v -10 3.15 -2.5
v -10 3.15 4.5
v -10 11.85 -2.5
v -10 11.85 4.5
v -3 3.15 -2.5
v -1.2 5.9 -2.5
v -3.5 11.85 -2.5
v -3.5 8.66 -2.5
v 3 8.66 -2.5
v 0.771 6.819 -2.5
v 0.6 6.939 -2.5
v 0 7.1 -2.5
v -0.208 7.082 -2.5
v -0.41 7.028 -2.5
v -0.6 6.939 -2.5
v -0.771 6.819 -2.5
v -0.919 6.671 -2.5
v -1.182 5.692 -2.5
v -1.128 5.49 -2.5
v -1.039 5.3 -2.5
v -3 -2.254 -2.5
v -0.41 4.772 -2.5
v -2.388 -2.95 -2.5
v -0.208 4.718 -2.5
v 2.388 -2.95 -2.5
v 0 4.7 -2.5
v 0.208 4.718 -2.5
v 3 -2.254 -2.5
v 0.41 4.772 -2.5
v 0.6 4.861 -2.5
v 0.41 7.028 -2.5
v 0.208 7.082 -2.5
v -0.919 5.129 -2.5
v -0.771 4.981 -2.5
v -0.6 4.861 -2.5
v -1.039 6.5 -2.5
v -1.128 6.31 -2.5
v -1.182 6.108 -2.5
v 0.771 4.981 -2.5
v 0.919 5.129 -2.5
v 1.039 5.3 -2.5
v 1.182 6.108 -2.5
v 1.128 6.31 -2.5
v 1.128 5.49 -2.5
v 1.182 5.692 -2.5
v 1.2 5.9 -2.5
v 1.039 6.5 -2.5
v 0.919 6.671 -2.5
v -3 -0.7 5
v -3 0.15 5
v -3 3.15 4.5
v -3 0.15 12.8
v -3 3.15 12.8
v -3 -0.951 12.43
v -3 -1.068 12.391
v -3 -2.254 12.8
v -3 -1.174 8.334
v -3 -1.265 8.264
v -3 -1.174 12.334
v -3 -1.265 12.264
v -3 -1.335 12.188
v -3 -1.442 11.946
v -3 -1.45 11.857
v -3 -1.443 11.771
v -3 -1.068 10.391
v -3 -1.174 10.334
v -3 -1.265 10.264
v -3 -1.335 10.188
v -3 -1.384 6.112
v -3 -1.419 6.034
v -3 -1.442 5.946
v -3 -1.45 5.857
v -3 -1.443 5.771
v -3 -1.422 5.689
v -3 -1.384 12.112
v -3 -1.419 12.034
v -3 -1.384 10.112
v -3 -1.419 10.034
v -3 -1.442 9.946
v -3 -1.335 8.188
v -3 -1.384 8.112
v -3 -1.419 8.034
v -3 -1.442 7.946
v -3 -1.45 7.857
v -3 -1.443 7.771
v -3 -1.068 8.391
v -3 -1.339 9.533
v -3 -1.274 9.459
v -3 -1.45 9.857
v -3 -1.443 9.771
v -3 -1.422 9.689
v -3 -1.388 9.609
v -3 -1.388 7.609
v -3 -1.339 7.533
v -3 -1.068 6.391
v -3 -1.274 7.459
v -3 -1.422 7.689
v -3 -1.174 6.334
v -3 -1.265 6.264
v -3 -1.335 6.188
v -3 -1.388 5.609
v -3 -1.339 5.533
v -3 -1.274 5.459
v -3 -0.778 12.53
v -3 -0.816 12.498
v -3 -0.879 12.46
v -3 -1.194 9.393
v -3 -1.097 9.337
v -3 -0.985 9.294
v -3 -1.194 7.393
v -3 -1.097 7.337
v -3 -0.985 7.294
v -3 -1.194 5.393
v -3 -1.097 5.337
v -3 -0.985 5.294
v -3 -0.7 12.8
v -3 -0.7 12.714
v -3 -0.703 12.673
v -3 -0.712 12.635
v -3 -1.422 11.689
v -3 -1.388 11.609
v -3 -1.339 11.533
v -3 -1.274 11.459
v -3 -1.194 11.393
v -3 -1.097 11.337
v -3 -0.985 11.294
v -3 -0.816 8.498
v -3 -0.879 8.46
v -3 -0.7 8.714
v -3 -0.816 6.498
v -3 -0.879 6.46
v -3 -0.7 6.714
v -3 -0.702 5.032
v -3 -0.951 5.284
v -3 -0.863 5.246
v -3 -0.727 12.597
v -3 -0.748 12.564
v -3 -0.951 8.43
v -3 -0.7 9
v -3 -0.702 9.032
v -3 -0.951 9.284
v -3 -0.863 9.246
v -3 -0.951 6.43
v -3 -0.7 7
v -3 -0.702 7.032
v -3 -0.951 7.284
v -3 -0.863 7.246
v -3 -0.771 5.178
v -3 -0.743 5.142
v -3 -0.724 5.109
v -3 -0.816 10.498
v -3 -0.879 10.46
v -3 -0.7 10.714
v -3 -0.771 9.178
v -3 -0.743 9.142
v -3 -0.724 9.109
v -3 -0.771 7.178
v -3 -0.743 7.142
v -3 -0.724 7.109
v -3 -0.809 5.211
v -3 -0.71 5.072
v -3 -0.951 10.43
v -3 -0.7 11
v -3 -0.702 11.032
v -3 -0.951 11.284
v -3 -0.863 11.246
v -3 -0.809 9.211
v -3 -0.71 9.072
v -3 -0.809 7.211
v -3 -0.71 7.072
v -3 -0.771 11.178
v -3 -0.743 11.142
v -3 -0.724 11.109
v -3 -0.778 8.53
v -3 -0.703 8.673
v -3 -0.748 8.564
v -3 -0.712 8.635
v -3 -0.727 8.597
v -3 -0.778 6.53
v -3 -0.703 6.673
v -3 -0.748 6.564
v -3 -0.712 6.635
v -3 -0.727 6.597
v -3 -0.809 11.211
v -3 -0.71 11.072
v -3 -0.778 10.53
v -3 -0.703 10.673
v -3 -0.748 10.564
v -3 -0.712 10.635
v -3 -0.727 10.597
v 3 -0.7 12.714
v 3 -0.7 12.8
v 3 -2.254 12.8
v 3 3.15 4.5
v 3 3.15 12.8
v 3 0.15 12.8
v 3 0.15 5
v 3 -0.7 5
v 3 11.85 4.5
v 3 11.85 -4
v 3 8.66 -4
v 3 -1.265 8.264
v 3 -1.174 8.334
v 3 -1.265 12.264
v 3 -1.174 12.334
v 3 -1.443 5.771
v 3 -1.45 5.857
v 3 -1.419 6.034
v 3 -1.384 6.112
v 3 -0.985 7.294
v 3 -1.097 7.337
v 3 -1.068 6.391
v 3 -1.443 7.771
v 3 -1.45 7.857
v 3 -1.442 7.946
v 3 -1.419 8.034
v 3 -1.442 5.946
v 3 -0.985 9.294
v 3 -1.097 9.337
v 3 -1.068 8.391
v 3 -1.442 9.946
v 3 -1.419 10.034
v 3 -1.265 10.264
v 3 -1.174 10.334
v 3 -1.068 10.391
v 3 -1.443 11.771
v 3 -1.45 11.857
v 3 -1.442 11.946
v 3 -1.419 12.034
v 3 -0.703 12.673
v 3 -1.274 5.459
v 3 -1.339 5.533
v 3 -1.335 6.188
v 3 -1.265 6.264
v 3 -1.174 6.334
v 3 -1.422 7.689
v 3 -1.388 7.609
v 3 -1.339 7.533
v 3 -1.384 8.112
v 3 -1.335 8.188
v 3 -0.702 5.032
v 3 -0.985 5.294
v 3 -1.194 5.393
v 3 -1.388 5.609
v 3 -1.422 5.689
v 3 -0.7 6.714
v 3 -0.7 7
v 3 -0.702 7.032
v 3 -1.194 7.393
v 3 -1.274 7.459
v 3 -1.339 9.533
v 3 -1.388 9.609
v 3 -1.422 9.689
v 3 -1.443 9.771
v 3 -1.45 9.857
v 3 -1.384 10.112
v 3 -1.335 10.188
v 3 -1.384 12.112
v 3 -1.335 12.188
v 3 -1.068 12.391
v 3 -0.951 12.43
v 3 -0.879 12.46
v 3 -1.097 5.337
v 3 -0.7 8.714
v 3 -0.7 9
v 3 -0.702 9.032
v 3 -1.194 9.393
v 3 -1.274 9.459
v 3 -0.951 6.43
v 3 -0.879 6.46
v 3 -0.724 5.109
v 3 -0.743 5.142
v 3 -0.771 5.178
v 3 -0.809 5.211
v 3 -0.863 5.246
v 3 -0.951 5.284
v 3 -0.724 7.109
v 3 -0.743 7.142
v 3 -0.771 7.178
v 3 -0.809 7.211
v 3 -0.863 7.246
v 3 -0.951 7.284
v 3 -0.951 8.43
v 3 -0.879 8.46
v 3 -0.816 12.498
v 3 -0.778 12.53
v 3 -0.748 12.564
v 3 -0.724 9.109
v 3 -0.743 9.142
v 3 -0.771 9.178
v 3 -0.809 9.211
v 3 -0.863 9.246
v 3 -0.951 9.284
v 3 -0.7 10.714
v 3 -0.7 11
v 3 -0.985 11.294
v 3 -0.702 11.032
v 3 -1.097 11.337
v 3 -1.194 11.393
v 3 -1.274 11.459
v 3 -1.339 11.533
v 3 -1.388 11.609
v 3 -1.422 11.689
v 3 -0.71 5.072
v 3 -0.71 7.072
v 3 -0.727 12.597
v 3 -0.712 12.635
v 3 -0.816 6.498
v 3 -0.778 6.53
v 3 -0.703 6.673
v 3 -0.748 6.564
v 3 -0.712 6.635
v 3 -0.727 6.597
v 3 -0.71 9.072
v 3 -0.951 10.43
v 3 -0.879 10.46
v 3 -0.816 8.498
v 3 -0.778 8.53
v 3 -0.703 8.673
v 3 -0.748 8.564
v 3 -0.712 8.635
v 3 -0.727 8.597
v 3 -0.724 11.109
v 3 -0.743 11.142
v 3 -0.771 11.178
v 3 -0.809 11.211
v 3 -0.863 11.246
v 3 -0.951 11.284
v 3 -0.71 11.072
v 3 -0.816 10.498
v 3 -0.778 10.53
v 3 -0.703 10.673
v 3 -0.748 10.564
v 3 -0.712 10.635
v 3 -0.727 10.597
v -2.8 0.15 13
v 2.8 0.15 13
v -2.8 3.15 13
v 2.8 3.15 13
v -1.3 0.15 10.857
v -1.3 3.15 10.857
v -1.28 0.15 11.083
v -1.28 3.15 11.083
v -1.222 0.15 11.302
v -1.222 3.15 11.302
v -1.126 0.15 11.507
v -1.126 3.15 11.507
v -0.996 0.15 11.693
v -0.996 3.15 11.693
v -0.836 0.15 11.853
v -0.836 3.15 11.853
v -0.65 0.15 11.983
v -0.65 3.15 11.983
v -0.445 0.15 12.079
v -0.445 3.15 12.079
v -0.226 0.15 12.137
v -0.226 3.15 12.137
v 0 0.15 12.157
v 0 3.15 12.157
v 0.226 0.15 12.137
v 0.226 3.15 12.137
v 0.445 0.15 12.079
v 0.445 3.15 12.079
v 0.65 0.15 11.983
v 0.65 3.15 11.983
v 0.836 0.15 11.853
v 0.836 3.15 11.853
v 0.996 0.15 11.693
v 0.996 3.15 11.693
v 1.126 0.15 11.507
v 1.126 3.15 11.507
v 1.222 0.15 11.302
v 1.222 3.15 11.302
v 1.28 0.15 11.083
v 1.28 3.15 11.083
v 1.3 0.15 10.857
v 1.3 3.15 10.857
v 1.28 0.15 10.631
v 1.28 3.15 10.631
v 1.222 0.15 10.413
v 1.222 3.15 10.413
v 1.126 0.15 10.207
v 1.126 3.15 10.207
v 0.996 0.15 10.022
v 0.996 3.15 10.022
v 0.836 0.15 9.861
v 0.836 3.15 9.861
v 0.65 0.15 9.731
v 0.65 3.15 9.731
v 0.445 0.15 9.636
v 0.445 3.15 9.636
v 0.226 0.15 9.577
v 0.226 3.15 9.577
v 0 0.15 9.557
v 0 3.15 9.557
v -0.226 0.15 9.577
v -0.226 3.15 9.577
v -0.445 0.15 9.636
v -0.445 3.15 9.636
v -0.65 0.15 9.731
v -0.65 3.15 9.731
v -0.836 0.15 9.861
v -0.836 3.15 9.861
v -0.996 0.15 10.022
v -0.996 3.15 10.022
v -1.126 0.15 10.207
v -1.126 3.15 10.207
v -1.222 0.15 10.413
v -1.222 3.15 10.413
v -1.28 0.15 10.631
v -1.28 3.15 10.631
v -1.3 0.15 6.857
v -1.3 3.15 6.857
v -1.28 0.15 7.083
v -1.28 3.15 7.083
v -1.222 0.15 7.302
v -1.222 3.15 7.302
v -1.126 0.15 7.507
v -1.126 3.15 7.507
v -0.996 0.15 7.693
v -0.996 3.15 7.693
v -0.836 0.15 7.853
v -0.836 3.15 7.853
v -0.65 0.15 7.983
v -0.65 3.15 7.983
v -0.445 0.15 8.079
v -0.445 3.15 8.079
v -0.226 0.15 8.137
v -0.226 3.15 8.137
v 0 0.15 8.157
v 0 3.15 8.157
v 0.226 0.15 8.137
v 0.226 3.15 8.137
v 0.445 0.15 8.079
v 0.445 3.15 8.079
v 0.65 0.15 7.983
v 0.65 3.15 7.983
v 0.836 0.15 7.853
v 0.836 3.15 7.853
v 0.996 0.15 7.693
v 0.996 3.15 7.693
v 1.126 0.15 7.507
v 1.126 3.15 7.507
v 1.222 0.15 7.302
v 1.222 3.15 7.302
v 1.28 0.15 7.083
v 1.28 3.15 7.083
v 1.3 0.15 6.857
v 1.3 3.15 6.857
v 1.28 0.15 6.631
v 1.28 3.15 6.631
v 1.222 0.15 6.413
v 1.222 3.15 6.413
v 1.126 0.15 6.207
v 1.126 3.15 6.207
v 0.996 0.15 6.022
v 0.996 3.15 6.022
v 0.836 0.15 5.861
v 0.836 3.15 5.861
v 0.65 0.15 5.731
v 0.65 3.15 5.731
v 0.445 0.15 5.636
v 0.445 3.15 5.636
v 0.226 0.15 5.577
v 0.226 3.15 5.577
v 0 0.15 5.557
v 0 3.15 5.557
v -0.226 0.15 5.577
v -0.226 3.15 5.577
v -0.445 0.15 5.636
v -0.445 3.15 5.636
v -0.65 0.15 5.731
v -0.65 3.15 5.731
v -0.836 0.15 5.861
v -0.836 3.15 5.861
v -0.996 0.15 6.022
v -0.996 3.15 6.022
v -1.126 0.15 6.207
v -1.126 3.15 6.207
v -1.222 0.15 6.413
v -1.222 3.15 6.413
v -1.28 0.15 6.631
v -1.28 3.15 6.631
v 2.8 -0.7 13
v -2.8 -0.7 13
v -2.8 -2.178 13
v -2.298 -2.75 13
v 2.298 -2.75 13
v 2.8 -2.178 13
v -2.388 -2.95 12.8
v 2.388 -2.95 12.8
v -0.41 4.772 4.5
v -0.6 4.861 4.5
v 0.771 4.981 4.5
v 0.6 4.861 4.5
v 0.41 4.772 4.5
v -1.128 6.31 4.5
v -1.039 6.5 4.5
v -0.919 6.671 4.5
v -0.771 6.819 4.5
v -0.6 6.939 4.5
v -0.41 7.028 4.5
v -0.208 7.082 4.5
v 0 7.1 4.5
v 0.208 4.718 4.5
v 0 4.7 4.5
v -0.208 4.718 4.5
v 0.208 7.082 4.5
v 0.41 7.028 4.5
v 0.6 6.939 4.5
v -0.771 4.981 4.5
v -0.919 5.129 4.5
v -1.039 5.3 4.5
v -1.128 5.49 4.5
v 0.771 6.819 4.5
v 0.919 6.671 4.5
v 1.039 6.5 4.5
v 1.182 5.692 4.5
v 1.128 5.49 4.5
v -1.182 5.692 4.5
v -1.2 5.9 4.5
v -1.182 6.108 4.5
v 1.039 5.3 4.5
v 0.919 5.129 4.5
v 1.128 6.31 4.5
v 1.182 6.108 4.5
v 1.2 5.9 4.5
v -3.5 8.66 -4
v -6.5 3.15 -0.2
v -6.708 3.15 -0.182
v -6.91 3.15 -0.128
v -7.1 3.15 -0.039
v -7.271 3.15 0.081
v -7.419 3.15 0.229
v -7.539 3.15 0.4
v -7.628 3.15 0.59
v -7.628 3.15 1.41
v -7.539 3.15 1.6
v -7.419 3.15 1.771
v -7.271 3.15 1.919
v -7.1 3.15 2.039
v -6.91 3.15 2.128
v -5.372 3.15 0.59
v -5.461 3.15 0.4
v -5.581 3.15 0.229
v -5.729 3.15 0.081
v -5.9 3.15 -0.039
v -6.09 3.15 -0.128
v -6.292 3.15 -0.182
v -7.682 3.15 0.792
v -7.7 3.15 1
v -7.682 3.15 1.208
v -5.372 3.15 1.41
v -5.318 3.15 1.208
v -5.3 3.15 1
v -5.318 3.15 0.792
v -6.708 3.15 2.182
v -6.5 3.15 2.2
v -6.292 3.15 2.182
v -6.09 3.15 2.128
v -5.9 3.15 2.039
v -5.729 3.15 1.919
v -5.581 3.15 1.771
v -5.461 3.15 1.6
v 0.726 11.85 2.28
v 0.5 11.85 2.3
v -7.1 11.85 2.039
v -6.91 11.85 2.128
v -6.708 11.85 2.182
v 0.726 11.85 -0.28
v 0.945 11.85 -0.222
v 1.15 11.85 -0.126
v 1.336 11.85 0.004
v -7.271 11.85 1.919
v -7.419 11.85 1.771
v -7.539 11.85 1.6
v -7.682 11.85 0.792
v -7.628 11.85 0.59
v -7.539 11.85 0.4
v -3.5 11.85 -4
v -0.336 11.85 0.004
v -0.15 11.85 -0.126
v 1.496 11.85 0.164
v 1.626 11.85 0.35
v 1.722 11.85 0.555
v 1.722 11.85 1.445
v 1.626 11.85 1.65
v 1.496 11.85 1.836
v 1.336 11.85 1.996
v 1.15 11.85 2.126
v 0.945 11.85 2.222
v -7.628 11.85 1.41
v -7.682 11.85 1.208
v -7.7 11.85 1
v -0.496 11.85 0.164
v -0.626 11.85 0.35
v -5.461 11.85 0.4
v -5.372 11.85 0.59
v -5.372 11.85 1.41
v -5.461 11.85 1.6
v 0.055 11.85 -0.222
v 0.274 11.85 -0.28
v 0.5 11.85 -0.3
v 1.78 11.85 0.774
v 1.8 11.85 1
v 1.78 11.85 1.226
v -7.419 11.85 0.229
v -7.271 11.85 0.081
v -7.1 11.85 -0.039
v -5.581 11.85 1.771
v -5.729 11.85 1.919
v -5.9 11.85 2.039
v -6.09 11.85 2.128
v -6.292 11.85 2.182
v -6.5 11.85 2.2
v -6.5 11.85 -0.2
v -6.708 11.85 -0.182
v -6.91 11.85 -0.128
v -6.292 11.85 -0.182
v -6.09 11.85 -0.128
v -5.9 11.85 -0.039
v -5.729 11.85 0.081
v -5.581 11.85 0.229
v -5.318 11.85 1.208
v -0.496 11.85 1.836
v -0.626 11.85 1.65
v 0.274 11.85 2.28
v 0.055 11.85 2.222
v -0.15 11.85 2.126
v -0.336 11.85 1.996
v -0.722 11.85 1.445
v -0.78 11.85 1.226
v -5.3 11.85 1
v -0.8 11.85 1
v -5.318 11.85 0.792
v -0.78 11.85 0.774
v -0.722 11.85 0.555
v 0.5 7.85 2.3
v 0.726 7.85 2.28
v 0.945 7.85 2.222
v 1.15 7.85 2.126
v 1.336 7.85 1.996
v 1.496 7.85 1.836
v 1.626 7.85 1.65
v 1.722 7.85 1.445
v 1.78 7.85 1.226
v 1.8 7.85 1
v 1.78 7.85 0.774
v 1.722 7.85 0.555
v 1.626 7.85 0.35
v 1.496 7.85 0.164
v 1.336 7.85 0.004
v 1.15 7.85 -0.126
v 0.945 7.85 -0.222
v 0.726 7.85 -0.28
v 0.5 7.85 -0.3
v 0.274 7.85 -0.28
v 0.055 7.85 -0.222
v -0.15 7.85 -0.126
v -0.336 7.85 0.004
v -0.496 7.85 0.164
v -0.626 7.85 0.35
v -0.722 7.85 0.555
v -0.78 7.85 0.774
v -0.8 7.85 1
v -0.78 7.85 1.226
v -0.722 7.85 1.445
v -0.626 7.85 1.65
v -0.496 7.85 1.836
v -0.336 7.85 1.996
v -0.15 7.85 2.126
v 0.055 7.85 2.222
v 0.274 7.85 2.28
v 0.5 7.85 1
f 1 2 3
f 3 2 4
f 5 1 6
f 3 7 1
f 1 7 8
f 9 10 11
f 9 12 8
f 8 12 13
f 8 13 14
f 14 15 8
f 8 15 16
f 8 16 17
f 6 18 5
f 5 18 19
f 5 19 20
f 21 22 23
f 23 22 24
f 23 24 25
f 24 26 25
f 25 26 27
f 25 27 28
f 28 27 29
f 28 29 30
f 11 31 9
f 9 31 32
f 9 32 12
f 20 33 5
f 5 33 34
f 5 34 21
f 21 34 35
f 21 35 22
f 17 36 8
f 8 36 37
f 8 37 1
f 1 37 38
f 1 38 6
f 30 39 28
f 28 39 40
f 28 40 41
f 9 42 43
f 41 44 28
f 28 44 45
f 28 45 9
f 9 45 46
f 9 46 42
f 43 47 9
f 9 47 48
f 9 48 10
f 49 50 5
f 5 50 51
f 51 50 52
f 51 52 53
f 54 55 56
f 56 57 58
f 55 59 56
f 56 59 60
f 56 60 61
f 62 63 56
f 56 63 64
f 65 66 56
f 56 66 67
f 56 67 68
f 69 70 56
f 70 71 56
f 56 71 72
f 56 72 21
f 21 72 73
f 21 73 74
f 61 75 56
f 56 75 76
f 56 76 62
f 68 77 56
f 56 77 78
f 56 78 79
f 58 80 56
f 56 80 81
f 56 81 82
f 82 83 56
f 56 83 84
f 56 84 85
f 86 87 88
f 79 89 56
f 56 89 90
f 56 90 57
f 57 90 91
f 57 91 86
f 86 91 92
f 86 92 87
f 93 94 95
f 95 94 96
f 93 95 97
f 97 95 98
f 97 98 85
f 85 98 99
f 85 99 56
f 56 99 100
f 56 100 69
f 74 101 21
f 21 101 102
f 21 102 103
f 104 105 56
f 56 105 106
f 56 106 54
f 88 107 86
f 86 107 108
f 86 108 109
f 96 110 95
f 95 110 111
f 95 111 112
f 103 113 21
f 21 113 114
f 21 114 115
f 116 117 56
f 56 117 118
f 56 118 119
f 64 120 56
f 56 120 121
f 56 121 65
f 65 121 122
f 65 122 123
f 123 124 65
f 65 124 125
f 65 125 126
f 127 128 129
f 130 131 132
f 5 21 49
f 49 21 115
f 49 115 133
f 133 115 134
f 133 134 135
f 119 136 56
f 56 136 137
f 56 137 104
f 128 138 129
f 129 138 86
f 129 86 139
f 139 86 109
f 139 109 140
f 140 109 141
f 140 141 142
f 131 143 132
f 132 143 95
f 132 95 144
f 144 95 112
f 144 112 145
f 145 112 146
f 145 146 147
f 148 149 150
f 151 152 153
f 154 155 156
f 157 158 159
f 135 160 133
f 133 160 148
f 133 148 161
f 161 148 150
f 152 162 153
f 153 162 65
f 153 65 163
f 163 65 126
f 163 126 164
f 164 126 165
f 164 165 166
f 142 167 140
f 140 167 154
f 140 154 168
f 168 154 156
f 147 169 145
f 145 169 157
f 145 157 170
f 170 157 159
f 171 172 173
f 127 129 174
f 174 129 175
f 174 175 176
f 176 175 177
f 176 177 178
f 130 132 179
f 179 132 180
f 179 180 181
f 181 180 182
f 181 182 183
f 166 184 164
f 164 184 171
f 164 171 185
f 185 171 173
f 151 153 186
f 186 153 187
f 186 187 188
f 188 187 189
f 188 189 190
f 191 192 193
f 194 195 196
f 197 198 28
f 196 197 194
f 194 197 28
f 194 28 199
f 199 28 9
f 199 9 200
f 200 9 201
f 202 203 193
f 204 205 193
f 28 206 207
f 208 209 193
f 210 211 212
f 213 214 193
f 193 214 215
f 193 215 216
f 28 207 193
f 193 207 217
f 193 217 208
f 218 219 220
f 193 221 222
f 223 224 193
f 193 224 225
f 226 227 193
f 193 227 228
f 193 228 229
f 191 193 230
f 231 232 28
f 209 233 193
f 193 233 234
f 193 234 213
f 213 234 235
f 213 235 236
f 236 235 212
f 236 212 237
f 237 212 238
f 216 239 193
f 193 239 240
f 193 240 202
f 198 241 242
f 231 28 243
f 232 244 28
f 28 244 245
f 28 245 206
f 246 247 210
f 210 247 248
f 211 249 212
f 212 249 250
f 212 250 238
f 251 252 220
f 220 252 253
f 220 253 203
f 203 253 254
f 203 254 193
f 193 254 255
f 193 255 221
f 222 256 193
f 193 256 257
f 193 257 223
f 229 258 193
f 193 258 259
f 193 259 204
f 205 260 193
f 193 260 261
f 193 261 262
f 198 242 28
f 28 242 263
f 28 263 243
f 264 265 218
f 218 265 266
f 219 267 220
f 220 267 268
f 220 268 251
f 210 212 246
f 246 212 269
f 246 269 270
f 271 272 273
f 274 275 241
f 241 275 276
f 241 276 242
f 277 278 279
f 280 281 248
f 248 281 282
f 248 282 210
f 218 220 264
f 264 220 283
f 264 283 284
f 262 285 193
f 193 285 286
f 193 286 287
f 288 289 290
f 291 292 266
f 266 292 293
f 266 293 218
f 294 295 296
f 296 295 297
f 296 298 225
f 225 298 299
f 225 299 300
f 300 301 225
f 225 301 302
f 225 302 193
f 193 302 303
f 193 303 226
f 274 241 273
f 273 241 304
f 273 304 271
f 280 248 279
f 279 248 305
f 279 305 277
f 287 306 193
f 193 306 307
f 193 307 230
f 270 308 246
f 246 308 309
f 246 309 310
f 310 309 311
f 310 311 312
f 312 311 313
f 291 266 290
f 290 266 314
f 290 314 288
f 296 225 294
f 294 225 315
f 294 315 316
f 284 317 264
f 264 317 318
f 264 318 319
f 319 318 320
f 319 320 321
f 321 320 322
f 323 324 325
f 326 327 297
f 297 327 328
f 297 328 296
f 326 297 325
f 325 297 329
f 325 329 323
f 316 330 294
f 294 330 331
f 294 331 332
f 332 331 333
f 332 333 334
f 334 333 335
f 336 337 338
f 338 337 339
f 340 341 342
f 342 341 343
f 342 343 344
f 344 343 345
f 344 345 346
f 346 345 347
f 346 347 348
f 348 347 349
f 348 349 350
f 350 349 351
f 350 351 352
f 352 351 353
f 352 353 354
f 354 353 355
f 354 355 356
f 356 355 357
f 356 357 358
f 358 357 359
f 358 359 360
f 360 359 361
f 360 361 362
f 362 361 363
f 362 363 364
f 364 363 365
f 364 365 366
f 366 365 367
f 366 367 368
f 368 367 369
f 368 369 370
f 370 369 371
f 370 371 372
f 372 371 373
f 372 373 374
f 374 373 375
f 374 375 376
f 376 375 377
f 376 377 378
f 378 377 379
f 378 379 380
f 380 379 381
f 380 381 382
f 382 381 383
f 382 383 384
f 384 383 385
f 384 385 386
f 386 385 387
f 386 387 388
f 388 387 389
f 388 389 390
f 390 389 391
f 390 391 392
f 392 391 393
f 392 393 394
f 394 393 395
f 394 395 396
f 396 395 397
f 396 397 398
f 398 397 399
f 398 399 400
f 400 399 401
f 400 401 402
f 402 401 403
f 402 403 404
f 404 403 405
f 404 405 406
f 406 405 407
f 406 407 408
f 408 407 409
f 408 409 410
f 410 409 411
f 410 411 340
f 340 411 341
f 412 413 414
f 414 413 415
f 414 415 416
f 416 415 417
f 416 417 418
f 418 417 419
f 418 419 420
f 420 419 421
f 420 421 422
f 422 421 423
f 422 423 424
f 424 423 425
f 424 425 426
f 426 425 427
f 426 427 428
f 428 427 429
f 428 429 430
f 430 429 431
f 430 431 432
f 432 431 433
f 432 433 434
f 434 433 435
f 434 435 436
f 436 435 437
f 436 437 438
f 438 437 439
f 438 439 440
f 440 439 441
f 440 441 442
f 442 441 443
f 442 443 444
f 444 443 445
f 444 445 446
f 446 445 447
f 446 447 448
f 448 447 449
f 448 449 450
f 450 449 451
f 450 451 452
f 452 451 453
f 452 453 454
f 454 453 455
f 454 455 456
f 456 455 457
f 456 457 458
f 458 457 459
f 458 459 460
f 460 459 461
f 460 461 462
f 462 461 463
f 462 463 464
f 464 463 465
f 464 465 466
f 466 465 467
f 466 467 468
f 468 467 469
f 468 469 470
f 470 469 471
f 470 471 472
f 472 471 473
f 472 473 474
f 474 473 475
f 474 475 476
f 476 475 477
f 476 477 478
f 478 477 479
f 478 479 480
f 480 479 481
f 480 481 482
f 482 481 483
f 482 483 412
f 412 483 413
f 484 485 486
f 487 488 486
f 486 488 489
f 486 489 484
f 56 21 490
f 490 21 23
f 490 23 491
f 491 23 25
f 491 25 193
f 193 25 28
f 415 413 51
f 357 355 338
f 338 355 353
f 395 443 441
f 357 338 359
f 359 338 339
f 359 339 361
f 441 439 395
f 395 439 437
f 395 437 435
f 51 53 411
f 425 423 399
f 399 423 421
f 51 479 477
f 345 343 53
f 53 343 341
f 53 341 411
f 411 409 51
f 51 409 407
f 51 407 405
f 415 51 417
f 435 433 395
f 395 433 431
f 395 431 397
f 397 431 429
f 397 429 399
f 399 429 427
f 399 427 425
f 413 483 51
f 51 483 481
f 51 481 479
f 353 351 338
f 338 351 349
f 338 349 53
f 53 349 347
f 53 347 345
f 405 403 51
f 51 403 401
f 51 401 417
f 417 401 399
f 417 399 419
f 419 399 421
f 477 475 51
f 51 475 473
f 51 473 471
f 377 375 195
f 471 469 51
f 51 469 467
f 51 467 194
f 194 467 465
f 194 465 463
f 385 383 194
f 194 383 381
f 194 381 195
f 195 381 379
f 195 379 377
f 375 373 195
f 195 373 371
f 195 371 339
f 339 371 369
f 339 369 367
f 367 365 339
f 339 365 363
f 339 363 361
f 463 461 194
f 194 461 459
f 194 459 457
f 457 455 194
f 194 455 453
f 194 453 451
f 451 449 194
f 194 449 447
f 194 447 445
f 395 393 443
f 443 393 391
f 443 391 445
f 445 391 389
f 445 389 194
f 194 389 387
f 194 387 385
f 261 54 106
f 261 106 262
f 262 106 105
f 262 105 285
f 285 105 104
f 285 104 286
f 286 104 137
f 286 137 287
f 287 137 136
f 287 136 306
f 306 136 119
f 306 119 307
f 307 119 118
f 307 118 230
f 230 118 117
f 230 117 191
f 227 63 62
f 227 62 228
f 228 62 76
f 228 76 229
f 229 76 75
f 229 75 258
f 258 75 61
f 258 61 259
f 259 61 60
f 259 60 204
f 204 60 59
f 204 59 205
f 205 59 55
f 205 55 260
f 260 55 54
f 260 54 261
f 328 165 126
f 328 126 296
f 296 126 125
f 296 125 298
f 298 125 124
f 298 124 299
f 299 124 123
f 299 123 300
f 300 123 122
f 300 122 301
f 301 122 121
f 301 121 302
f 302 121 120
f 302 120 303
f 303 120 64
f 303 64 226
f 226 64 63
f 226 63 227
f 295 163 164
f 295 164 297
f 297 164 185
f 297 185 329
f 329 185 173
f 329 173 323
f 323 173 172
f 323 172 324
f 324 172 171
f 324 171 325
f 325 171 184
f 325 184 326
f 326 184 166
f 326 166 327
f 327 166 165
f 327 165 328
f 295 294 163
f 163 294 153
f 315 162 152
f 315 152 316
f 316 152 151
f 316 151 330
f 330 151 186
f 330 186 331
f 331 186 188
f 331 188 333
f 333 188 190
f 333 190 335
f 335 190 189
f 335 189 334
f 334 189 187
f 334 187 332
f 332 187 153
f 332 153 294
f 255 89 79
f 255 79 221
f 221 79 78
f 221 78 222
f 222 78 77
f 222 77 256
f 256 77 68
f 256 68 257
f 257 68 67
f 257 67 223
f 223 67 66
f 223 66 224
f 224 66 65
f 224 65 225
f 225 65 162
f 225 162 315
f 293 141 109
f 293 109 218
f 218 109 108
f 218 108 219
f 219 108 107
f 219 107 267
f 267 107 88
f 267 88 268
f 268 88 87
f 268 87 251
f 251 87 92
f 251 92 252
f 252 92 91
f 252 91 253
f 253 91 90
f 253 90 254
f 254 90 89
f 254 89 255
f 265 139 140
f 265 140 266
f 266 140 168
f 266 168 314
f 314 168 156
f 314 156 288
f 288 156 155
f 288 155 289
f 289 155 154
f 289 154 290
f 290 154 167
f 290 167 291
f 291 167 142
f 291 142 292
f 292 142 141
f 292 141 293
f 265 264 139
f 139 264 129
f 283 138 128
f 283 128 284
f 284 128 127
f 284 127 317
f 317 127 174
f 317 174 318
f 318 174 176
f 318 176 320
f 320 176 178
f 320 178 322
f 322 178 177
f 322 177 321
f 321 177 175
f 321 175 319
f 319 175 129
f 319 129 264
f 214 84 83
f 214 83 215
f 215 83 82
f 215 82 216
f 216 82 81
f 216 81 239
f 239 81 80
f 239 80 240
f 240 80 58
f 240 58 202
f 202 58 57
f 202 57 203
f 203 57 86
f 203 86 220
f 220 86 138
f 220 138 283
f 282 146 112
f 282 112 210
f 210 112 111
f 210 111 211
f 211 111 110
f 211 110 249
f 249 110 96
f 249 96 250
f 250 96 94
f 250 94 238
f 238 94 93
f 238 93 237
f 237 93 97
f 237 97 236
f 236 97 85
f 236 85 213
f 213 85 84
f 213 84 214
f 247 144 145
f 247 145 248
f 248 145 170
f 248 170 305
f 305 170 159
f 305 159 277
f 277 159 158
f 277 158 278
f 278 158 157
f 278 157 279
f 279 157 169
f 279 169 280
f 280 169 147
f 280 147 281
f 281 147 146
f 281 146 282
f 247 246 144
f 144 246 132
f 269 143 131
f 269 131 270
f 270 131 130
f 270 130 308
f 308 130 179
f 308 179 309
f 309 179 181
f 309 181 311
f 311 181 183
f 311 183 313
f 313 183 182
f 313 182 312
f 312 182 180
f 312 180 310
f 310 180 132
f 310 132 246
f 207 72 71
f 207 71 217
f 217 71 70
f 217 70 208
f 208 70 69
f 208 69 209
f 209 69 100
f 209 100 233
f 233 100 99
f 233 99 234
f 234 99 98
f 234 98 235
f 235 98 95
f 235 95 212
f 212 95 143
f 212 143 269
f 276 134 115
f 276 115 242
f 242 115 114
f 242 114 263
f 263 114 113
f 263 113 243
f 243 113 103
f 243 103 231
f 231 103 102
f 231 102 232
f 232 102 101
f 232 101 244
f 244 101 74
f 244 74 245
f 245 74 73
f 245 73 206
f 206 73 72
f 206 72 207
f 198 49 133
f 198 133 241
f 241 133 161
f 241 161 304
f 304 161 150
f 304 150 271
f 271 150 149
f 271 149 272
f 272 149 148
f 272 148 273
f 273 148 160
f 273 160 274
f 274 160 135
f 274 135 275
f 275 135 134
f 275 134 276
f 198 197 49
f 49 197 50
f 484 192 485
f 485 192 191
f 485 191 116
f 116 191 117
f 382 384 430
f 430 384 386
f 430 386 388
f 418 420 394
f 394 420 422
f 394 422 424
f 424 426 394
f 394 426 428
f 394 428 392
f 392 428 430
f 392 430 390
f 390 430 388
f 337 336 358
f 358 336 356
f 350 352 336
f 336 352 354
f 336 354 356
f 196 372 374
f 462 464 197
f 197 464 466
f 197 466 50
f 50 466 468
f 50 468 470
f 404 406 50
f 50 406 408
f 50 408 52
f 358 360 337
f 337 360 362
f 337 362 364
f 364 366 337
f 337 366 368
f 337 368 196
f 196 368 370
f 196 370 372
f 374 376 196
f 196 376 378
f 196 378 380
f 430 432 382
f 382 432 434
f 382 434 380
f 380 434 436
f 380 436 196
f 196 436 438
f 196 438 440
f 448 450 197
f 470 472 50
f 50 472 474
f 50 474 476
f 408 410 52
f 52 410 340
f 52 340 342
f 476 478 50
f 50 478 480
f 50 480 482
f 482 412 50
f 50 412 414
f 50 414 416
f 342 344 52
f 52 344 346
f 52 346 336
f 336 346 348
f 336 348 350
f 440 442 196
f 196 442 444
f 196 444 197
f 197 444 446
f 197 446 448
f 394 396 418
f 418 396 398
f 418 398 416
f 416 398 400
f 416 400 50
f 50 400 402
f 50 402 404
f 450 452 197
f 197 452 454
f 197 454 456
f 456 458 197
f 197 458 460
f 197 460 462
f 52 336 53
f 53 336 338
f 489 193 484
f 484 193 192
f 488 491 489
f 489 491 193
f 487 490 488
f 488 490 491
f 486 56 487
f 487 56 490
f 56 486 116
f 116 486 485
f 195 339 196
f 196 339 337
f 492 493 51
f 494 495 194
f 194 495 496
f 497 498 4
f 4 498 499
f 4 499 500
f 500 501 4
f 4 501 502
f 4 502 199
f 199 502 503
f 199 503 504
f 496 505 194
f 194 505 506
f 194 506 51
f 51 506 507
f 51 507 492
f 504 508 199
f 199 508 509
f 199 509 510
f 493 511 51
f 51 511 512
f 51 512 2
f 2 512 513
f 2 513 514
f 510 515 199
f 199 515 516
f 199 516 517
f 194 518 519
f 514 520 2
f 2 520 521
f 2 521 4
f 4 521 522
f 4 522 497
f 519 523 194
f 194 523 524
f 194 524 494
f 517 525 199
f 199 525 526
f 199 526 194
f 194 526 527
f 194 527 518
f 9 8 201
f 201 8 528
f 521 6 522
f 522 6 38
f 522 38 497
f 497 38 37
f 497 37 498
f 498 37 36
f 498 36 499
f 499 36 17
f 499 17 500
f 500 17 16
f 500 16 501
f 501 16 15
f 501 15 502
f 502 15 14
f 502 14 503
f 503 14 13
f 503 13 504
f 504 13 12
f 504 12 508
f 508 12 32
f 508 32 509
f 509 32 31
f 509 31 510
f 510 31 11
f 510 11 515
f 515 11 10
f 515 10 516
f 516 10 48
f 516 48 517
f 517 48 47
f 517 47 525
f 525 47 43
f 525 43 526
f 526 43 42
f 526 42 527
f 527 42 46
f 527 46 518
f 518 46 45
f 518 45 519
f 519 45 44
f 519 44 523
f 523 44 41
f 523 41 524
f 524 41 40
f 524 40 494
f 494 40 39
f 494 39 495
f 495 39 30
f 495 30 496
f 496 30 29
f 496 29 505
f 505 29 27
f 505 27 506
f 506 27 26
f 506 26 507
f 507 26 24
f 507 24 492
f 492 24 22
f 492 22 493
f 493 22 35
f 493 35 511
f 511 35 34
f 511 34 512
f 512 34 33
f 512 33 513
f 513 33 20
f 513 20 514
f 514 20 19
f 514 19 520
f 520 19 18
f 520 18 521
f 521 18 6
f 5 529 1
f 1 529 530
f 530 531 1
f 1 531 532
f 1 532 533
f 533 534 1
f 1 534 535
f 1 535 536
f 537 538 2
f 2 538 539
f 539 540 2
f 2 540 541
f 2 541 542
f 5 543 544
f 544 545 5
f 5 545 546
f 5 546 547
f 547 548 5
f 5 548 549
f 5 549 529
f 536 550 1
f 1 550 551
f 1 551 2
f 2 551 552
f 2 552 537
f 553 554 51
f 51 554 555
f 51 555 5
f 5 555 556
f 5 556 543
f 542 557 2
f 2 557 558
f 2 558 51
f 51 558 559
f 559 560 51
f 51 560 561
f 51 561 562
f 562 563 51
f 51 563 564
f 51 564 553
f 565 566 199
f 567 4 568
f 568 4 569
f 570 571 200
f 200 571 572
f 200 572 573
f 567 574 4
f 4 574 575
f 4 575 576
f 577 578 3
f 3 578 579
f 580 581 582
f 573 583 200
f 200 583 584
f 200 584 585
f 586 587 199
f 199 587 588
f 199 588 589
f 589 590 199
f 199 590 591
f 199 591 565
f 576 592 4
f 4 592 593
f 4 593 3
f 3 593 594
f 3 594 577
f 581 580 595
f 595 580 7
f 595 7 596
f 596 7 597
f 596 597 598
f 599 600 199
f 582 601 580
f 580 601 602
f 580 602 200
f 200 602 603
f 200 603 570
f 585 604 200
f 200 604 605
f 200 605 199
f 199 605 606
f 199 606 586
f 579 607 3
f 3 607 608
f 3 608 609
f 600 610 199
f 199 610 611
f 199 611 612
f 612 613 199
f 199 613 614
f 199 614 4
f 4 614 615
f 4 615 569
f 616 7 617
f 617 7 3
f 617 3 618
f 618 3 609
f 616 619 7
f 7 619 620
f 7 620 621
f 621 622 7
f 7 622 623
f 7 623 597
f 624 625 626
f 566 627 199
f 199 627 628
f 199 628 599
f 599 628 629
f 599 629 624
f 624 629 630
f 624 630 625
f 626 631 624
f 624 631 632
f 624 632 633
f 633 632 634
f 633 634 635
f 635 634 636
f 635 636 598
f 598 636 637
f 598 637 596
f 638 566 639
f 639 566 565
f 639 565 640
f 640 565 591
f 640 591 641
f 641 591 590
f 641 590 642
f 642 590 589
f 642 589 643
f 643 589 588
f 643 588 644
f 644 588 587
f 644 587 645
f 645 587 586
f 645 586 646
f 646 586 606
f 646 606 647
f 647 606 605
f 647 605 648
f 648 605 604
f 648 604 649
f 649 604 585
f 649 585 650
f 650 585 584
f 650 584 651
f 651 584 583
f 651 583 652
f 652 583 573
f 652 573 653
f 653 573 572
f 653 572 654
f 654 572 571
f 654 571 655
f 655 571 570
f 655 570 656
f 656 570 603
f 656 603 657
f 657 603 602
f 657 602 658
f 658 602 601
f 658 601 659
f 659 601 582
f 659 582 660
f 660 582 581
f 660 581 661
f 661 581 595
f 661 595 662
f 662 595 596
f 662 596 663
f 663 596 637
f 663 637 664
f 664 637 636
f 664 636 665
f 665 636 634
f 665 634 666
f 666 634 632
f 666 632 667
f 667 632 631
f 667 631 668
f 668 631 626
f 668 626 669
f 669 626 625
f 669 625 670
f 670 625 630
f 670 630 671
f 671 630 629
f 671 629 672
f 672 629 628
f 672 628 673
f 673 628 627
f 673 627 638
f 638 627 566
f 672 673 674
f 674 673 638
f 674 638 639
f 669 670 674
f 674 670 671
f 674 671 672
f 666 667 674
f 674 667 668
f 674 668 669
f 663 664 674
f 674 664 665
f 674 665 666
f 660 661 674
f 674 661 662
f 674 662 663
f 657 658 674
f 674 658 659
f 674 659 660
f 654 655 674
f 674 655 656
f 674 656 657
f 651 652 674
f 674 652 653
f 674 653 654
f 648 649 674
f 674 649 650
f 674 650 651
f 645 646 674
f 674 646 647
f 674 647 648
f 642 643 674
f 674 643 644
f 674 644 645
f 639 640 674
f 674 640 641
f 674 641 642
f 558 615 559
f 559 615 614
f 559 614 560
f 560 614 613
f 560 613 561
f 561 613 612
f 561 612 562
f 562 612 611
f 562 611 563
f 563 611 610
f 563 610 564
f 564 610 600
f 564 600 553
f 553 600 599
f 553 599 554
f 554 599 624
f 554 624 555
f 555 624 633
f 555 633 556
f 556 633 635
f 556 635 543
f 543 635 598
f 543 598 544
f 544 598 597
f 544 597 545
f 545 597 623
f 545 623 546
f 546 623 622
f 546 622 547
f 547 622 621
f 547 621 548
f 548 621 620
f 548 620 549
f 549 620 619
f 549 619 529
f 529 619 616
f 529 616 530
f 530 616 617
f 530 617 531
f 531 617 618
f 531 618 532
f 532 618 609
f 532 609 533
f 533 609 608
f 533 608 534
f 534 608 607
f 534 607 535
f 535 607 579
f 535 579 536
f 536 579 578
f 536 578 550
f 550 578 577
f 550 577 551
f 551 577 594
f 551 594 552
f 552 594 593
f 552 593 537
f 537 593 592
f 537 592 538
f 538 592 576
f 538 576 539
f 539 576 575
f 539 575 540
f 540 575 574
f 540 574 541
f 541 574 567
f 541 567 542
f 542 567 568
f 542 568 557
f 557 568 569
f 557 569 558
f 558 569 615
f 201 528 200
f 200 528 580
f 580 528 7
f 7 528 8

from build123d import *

# Parameters (mm, degrees)
BOSS_EXTRUDE1_DEPTH     = 13
SKETCH6_W               = 6
SKETCH6_H               = 5
BOSS_EXTRUDE4_DEPTH     = 5.6
SKETCH16_W              = 6
SKETCH16_H              = 8
BOSS_EXTRUDE5_DEPTH     = 0.1
CUT_EXTRUDE6_DEPTH      = 4
CUT_EXTRUDE6_DEPTH_BACK = 3.6
SKETCH15_R              = 1.3
CUT_EXTRUDE7_DEPTH      = 8.7202
CUT_EXTRUDE8_START      = -0.2202
SKETCH19_W              = 6
SKETCH19_H              = 8
SKETCH19_R              = 1.3
CUT_EXTRUDE8_DEPTH      = 0.2202
SKETCH12_R              = 1.2
CUT_EXTRUDE5_DEPTH      = 6
CHAMFER1_SIZE           = 0.2
SKETCH21_R              = 1.2
BOSS_EXTRUDE6_DEPTH     = 2.5
SKETCH24_W              = 6
SKETCH24_H              = 5.5
CUT_EXTRUDE10_DEPTH     = 8.5
SKETCH25_W              = 6
SKETCH25_H              = 7
BOSS_EXTRUDE8_DEPTH     = 12.9
SKETCH26_W              = 6
SKETCH26_H              = 7.39
BOSS_EXTRUDE9_DEPTH     = 3
SKETCH30_R              = 1.2
CUT_EXTRUDE13_DEPTH     = 8
SKETCH31_W              = 7
SKETCH31_H              = 9
BOSS_EXTRUDE11_DEPTH    = 1
SKETCH32_W              = 7
SKETCH32_H              = 9
BOSS_EXTRUDE12_DEPTH    = 1
BOSS_EXTRUDE13_DEPTH    = 1
BOSS_EXTRUDE14_DEPTH    = 1
SKETCH35_W              = 10
SKETCH35_H              = 4.2
CUT_EXTRUDE14_DEPTH     = 10
BOSS_EXTRUDE15_DEPTH    = 6
SKETCH38_R              = 1.3
CUT_EXTRUDE15_DEPTH     = 4
SKETCH39_R              = 1.2
CUT_EXTRUDE16_DEPTH     = 10
SKETCH40_W              = 14
SKETCH40_H              = 1.5
CUT_EXTRUDE17_DEPTH     = 10
SKETCH41_W              = 6.5
SKETCH41_H              = 3.19
CUT_EXTRUDE18_DEPTH     = 1.5
CROQUIS3_W              = 8.5
CROQUIS3_H              = 8.726674232
CORTAR_EXTRUIR3_DEPTH   = 1


with BuildPart() as part:
    # Sketch1 → Boss-Extrude1 (new body)
    with BuildSketch(Plane.XY):
        Polygon((3, 3.05), (3, -2.253801214), (2.388188946, -2.95), (-2.388188946, -2.95), (-3, -2.253801214), (-3, 3.05), align=None)
    extrude(amount=BOSS_EXTRUDE1_DEPTH)

    # Sketch6 → Boss-Extrude4 (add)
    with BuildSketch(Plane(origin=(0, 3.05, 0), x_dir=(1, 0, 0), z_dir=(0, 1, 0))):
        with Locations((0, -2.5)):
            Rectangle(SKETCH6_W, SKETCH6_H)
    extrude(amount=BOSS_EXTRUDE4_DEPTH)

    # Sketch16 → Boss-Extrude5 (add)
    with BuildSketch(Plane(origin=(0, 3.05, 0), x_dir=(1, 0, 0), z_dir=(0, 1, 0))):
        with Locations((0, -9)):
            Rectangle(SKETCH16_W, SKETCH16_H)
    extrude(amount=BOSS_EXTRUDE5_DEPTH)

    # Sketch18 → Cut-Extrude6 (cut, two sides: drawn at the far end of the back side and taken through both)
    with BuildSketch(Plane(origin=(0, 0, 0), x_dir=(0, 0, -1), z_dir=(1, 0, 0)).offset(-CUT_EXTRUDE6_DEPTH_BACK)):
        with BuildLine():
            Line((-8.8572, -0.0702), (-12.8572, -0.0702))
            Line((-12.8572, -0.0702), (-13, -0.0702))
            Line((-13, -0.0702), (-13, -0.7))
            Line((-13, -0.7), (-12.8572, -0.7))
            Line((-12.8572, -0.7), (-12.7144, -0.7))
            add(Edge.make_bspline(
                [(-12.7144, -0.7), (-12.5198, -0.7), (-12.43, -0.9509)],
                knots=[0.103448276, 0.103448276, 0.103448276, 0.137931034, 0.137931034, 0.137931034], degree=2))
            add(Edge.make_bspline(
                [(-12.43, -0.9509), (-12.3594, -1.2388), (-12.13, -1.45), (-11.8572, -1.45)],
                knots=[0.137931034, 0.137931034, 0.137931034, 0.137931034, 0.172413793, 0.172413793, 0.172413793, 0.172413793], degree=3))
            add(Edge.make_bspline(
                [(-11.8572, -1.45), (-11.5844, -1.45), (-11.355, -1.2388), (-11.2844, -0.9509)],
                knots=[0.172413793, 0.172413793, 0.172413793, 0.172413793, 0.206896552, 0.206896552, 0.206896552, 0.206896552], degree=3))
            add(Edge.make_bspline(
                [(-11.2844, -0.9509), (-11.1946, -0.7), (-11, -0.7)],
                knots=[0.206896552, 0.206896552, 0.206896552, 0.24137931, 0.24137931, 0.24137931], degree=2))
            Line((-11, -0.7), (-10.8572, -0.7))
            Line((-10.8572, -0.7), (-10.7144, -0.7))
            add(Edge.make_bspline(
                [(-10.7144, -0.7), (-10.5198, -0.7), (-10.43, -0.9509)],
                knots=[0.310344828, 0.310344828, 0.310344828, 0.344827586, 0.344827586, 0.344827586], degree=2))
            add(Edge.make_bspline(
                [(-10.43, -0.9509), (-10.3594, -1.2388), (-10.13, -1.45), (-9.8572, -1.45)],
                knots=[0.344827586, 0.344827586, 0.344827586, 0.344827586, 0.379310345, 0.379310345, 0.379310345, 0.379310345], degree=3))
            add(Edge.make_bspline(
                [(-9.8572, -1.45), (-9.5844, -1.45), (-9.355, -1.2388), (-9.2844, -0.9509)],
                knots=[0.379310345, 0.379310345, 0.379310345, 0.379310345, 0.413793103, 0.413793103, 0.413793103, 0.413793103], degree=3))
            add(Edge.make_bspline(
                [(-9.2844, -0.9509), (-9.1946, -0.7), (-9, -0.7)],
                knots=[0.413793103, 0.413793103, 0.413793103, 0.448275862, 0.448275862, 0.448275862], degree=2))
            Line((-9, -0.7), (-8.8572, -0.7))
            Line((-8.8572, -0.7), (-8.7144, -0.7))
            add(Edge.make_bspline(
                [(-8.7144, -0.7), (-8.5198, -0.7), (-8.43, -0.9509)],
                knots=[0.517241379, 0.517241379, 0.517241379, 0.551724138, 0.551724138, 0.551724138], degree=2))
            add(Edge.make_bspline(
                [(-8.43, -0.9509), (-8.3594, -1.2388), (-8.13, -1.45), (-7.8572, -1.45)],
                knots=[0.551724138, 0.551724138, 0.551724138, 0.551724138, 0.586206897, 0.586206897, 0.586206897, 0.586206897], degree=3))
            add(Edge.make_bspline(
                [(-7.8572, -1.45), (-7.5844, -1.45), (-7.355, -1.2388), (-7.2844, -0.9509)],
                knots=[0.586206897, 0.586206897, 0.586206897, 0.586206897, 0.620689655, 0.620689655, 0.620689655, 0.620689655], degree=3))
            add(Edge.make_bspline(
                [(-7.2844, -0.9509), (-7.1946, -0.7), (-7, -0.7)],
                knots=[0.620689655, 0.620689655, 0.620689655, 0.655172414, 0.655172414, 0.655172414], degree=2))
            Line((-7, -0.7), (-6.8572, -0.7))
            Line((-6.8572, -0.7), (-6.7144, -0.7))
            add(Edge.make_bspline(
                [(-6.7144, -0.7), (-6.5198, -0.7), (-6.43, -0.9509)],
                knots=[0.724137931, 0.724137931, 0.724137931, 0.75862069, 0.75862069, 0.75862069], degree=2))
            add(Edge.make_bspline(
                [(-6.43, -0.9509), (-6.3594, -1.2388), (-6.13, -1.45), (-5.8572, -1.45)],
                knots=[0.75862069, 0.75862069, 0.75862069, 0.75862069, 0.793103448, 0.793103448, 0.793103448, 0.793103448], degree=3))
            add(Edge.make_bspline(
                [(-5.8572, -1.45), (-5.5844, -1.45), (-5.355, -1.2388), (-5.2844, -0.9509)],
                knots=[0.793103448, 0.793103448, 0.793103448, 0.793103448, 0.827586207, 0.827586207, 0.827586207, 0.827586207], degree=3))
            add(Edge.make_bspline(
                [(-5.2844, -0.9509), (-5.1946, -0.7), (-5, -0.7)],
                knots=[0.827586207, 0.827586207, 0.827586207, 0.862068966, 0.862068966, 0.862068966], degree=2))
            Line((-5, -0.7), (-5, -0.0702))
            Line((-5, -0.0702), (-8.8572, -0.0702))
        make_face()
    extrude(amount=CUT_EXTRUDE6_DEPTH + CUT_EXTRUDE6_DEPTH_BACK, mode=Mode.SUBTRACT)

    # Sketch15 → Cut-Extrude7 (cut)
    with BuildSketch(Plane(origin=(0, 8.65, 0), x_dir=(1, 0, 0), z_dir=(0, 1, 0))):
        with Locations(Location((0, -10.8572, 0), (0, 0, 180))):
            Circle(SKETCH15_R)
        with Locations(Location((0, -6.8572, 0), (0, 0, 180))):
            Circle(SKETCH15_R)
    extrude(amount=-CUT_EXTRUDE7_DEPTH, mode=Mode.SUBTRACT)

    # Sketch19 → Cut-Extrude8 (cut)
    with BuildSketch(Plane.XZ.offset(0.0702).offset(CUT_EXTRUDE8_START)):
        with Locations((0, 9)):
            Rectangle(SKETCH19_W, SKETCH19_H)
        with Locations(Location((0, 10.8572, 0), (0, 0, 180))):
            Circle(SKETCH19_R, mode=Mode.SUBTRACT)
        with Locations(Location((0, 6.8572, 0), (0, 0, 180))):
            Circle(SKETCH19_R, mode=Mode.SUBTRACT)
    extrude(amount=CUT_EXTRUDE8_DEPTH, mode=Mode.SUBTRACT)

    # Sketch12 → Cut-Extrude5 (cut)
    with BuildSketch(Plane.XY.offset(5)):
        with Locations((0, 5.85)):
            Circle(SKETCH12_R)
    extrude(amount=-CUT_EXTRUDE5_DEPTH, mode=Mode.SUBTRACT)

    # Chamfer1
    chamfer1_edges = [part.edges().sort_by_distance(p)[0] for p in [
        (-2.694094473, -2.601900607, 13),
        (0, -2.95, 13),
        (2.694094473, -2.601900607, 13),
        (3, 1.65, 13),
        (3, -1.476900607, 13),
        (-3, -1.476900607, 13),
        (-3, 1.65, 13),
    ]]
    chamfer(chamfer1_edges, length=CHAMFER1_SIZE)

    # Sketch21 → Boss-Extrude6 (add)
    with BuildSketch(Plane(origin=(0, 0, 0), x_dir=(-1, 0, 0), z_dir=(0, 0, -1))):
        Polygon((-2.388188946, -2.95), (2.388188946, -2.95), (3, -2.253801214), (3, 8.65), (-3, 8.65), (-3, -2.253801214), align=None)
        with Locations(Location((0, 5.85, 0), (0, 0, 180))):
            Circle(SKETCH21_R, mode=Mode.SUBTRACT)
    extrude(amount=BOSS_EXTRUDE6_DEPTH)

    # Sketch24 → Cut-Extrude10 (cut)
    with BuildSketch(Plane.XY.offset(5)):
        with Locations((0, 5.9)):
            Rectangle(SKETCH24_W, SKETCH24_H)
    extrude(amount=-CUT_EXTRUDE10_DEPTH, mode=Mode.SUBTRACT)

    # Sketch25 → Boss-Extrude8 (add)
    with BuildSketch(Plane(origin=(0, 3.15, 0), x_dir=(1, 0, 0), z_dir=(0, 1, 0))):
        with Locations((0, -1)):
            Rectangle(SKETCH25_W, SKETCH25_H)
    extrude(amount=BOSS_EXTRUDE8_DEPTH)

    # Sketch26 → Boss-Extrude9 (add)
    with BuildSketch(Plane(origin=(0, 0, -2.5), x_dir=(-1, 0, 0), z_dir=(0, 0, -1))):
        with Locations((0, 12.355)):
            Rectangle(SKETCH26_W, SKETCH26_H)
    extrude(amount=BOSS_EXTRUDE9_DEPTH)

    # Sketch30 → Cut-Extrude13 (cut)
    with BuildSketch(Plane(origin=(0, 0, -2.5), x_dir=(-1, 0, 0), z_dir=(0, 0, -1))):
        with Locations((0, 5.9)):
            Circle(SKETCH30_R)
    extrude(amount=-CUT_EXTRUDE13_DEPTH, mode=Mode.SUBTRACT)

    # Sketch31 → Boss-Extrude11 (add)
    with BuildSketch(Plane(origin=(3, 0, 0), x_dir=(0, 0, -1), z_dir=(1, 0, 0))):
        with Locations((-1, 7.65)):
            Rectangle(SKETCH31_W, SKETCH31_H)
    extrude(amount=BOSS_EXTRUDE11_DEPTH)

    # Sketch32 → Boss-Extrude12 (add)
    with BuildSketch(Plane.ZY.offset(3)):
        with Locations((1, 7.65)):
            Rectangle(SKETCH32_W, SKETCH32_H)
    extrude(amount=BOSS_EXTRUDE12_DEPTH)

    # Sketch33 → Boss-Extrude13 (add)
    with BuildSketch(Plane(origin=(3, 0, 0), x_dir=(0, 0, -1), z_dir=(1, 0, 0))):
        Polygon((2.5, 12.15), (2.5, 8.66), (5.5, 8.66), (5.5, 16.05), (-4.5, 16.05), (-4.5, 12.15), align=None)
    extrude(amount=BOSS_EXTRUDE13_DEPTH)

    # Sketch34 → Boss-Extrude14 (add)
    with BuildSketch(Plane.ZY.offset(3)):
        Polygon((-2.5, 12.15), (4.5, 12.15), (4.5, 16.05), (-5.5, 16.05), (-5.5, 8.66), (-2.5, 8.66), align=None)
    extrude(amount=BOSS_EXTRUDE14_DEPTH)

    # Sketch35 → Cut-Extrude14 (cut)
    with BuildSketch(Plane.ZY.offset(4)):
        with Locations((-0.5, 13.95)):
            Rectangle(SKETCH35_W, SKETCH35_H)
    extrude(amount=-CUT_EXTRUDE14_DEPTH, mode=Mode.SUBTRACT)

    # Sketch36 → Boss-Extrude15 (add)
    with BuildSketch(Plane.ZY.offset(4)):
        Polygon((4.5, 3.15), (4.5, 11.85), (-5.5, 11.85), (-5.5, 8.66), (-2.5, 8.66), (-2.5, 3.15), align=None)
    extrude(amount=BOSS_EXTRUDE15_DEPTH)

    # Sketch38 → Cut-Extrude15 (cut)
    with BuildSketch(Plane(origin=(0, 11.85, 0), x_dir=(1, 0, 0), z_dir=(0, 1, 0))):
        with Locations(Location((0.5, -1, 0), (0, 0, 270))):
            Circle(SKETCH38_R)
    extrude(amount=-CUT_EXTRUDE15_DEPTH, mode=Mode.SUBTRACT)

    # Sketch39 → Cut-Extrude16 (cut)
    with BuildSketch(Plane(origin=(0, 11.85, 0), x_dir=(1, 0, 0), z_dir=(0, 1, 0))):
        with Locations(Location((-6.5, -1, 0), (0, 0, 270))):
            Circle(SKETCH39_R)
    extrude(amount=-CUT_EXTRUDE16_DEPTH, mode=Mode.SUBTRACT)

    # Sketch40 → Cut-Extrude17 (cut)
    with BuildSketch(Plane(origin=(0, 11.85, 0), x_dir=(1, 0, 0), z_dir=(0, 1, 0))):
        with Locations((-3, 4.75)):
            Rectangle(SKETCH40_W, SKETCH40_H)
    extrude(amount=-CUT_EXTRUDE17_DEPTH, mode=Mode.SUBTRACT)

    # Sketch41 → Cut-Extrude18 (cut)
    with BuildSketch(Plane(origin=(0, 0, -4), x_dir=(-1, 0, 0), z_dir=(0, 0, -1))):
        with Locations((6.75, 10.255)):
            Rectangle(SKETCH41_W, SKETCH41_H)
    extrude(amount=-CUT_EXTRUDE18_DEPTH, mode=Mode.SUBTRACT)

    # Croquis3 → Cortar-Extruir3 (cut)
    with BuildSketch(Plane(origin=(4, 0, 0), x_dir=(0, 0, -1), z_dir=(1, 0, 0))):
        with Locations((-0.25, 7.486662884)):
            Rectangle(CROQUIS3_W, CROQUIS3_H)
    extrude(amount=-CORTAR_EXTRUIR3_DEPTH, mode=Mode.SUBTRACT)


solid = part.part
